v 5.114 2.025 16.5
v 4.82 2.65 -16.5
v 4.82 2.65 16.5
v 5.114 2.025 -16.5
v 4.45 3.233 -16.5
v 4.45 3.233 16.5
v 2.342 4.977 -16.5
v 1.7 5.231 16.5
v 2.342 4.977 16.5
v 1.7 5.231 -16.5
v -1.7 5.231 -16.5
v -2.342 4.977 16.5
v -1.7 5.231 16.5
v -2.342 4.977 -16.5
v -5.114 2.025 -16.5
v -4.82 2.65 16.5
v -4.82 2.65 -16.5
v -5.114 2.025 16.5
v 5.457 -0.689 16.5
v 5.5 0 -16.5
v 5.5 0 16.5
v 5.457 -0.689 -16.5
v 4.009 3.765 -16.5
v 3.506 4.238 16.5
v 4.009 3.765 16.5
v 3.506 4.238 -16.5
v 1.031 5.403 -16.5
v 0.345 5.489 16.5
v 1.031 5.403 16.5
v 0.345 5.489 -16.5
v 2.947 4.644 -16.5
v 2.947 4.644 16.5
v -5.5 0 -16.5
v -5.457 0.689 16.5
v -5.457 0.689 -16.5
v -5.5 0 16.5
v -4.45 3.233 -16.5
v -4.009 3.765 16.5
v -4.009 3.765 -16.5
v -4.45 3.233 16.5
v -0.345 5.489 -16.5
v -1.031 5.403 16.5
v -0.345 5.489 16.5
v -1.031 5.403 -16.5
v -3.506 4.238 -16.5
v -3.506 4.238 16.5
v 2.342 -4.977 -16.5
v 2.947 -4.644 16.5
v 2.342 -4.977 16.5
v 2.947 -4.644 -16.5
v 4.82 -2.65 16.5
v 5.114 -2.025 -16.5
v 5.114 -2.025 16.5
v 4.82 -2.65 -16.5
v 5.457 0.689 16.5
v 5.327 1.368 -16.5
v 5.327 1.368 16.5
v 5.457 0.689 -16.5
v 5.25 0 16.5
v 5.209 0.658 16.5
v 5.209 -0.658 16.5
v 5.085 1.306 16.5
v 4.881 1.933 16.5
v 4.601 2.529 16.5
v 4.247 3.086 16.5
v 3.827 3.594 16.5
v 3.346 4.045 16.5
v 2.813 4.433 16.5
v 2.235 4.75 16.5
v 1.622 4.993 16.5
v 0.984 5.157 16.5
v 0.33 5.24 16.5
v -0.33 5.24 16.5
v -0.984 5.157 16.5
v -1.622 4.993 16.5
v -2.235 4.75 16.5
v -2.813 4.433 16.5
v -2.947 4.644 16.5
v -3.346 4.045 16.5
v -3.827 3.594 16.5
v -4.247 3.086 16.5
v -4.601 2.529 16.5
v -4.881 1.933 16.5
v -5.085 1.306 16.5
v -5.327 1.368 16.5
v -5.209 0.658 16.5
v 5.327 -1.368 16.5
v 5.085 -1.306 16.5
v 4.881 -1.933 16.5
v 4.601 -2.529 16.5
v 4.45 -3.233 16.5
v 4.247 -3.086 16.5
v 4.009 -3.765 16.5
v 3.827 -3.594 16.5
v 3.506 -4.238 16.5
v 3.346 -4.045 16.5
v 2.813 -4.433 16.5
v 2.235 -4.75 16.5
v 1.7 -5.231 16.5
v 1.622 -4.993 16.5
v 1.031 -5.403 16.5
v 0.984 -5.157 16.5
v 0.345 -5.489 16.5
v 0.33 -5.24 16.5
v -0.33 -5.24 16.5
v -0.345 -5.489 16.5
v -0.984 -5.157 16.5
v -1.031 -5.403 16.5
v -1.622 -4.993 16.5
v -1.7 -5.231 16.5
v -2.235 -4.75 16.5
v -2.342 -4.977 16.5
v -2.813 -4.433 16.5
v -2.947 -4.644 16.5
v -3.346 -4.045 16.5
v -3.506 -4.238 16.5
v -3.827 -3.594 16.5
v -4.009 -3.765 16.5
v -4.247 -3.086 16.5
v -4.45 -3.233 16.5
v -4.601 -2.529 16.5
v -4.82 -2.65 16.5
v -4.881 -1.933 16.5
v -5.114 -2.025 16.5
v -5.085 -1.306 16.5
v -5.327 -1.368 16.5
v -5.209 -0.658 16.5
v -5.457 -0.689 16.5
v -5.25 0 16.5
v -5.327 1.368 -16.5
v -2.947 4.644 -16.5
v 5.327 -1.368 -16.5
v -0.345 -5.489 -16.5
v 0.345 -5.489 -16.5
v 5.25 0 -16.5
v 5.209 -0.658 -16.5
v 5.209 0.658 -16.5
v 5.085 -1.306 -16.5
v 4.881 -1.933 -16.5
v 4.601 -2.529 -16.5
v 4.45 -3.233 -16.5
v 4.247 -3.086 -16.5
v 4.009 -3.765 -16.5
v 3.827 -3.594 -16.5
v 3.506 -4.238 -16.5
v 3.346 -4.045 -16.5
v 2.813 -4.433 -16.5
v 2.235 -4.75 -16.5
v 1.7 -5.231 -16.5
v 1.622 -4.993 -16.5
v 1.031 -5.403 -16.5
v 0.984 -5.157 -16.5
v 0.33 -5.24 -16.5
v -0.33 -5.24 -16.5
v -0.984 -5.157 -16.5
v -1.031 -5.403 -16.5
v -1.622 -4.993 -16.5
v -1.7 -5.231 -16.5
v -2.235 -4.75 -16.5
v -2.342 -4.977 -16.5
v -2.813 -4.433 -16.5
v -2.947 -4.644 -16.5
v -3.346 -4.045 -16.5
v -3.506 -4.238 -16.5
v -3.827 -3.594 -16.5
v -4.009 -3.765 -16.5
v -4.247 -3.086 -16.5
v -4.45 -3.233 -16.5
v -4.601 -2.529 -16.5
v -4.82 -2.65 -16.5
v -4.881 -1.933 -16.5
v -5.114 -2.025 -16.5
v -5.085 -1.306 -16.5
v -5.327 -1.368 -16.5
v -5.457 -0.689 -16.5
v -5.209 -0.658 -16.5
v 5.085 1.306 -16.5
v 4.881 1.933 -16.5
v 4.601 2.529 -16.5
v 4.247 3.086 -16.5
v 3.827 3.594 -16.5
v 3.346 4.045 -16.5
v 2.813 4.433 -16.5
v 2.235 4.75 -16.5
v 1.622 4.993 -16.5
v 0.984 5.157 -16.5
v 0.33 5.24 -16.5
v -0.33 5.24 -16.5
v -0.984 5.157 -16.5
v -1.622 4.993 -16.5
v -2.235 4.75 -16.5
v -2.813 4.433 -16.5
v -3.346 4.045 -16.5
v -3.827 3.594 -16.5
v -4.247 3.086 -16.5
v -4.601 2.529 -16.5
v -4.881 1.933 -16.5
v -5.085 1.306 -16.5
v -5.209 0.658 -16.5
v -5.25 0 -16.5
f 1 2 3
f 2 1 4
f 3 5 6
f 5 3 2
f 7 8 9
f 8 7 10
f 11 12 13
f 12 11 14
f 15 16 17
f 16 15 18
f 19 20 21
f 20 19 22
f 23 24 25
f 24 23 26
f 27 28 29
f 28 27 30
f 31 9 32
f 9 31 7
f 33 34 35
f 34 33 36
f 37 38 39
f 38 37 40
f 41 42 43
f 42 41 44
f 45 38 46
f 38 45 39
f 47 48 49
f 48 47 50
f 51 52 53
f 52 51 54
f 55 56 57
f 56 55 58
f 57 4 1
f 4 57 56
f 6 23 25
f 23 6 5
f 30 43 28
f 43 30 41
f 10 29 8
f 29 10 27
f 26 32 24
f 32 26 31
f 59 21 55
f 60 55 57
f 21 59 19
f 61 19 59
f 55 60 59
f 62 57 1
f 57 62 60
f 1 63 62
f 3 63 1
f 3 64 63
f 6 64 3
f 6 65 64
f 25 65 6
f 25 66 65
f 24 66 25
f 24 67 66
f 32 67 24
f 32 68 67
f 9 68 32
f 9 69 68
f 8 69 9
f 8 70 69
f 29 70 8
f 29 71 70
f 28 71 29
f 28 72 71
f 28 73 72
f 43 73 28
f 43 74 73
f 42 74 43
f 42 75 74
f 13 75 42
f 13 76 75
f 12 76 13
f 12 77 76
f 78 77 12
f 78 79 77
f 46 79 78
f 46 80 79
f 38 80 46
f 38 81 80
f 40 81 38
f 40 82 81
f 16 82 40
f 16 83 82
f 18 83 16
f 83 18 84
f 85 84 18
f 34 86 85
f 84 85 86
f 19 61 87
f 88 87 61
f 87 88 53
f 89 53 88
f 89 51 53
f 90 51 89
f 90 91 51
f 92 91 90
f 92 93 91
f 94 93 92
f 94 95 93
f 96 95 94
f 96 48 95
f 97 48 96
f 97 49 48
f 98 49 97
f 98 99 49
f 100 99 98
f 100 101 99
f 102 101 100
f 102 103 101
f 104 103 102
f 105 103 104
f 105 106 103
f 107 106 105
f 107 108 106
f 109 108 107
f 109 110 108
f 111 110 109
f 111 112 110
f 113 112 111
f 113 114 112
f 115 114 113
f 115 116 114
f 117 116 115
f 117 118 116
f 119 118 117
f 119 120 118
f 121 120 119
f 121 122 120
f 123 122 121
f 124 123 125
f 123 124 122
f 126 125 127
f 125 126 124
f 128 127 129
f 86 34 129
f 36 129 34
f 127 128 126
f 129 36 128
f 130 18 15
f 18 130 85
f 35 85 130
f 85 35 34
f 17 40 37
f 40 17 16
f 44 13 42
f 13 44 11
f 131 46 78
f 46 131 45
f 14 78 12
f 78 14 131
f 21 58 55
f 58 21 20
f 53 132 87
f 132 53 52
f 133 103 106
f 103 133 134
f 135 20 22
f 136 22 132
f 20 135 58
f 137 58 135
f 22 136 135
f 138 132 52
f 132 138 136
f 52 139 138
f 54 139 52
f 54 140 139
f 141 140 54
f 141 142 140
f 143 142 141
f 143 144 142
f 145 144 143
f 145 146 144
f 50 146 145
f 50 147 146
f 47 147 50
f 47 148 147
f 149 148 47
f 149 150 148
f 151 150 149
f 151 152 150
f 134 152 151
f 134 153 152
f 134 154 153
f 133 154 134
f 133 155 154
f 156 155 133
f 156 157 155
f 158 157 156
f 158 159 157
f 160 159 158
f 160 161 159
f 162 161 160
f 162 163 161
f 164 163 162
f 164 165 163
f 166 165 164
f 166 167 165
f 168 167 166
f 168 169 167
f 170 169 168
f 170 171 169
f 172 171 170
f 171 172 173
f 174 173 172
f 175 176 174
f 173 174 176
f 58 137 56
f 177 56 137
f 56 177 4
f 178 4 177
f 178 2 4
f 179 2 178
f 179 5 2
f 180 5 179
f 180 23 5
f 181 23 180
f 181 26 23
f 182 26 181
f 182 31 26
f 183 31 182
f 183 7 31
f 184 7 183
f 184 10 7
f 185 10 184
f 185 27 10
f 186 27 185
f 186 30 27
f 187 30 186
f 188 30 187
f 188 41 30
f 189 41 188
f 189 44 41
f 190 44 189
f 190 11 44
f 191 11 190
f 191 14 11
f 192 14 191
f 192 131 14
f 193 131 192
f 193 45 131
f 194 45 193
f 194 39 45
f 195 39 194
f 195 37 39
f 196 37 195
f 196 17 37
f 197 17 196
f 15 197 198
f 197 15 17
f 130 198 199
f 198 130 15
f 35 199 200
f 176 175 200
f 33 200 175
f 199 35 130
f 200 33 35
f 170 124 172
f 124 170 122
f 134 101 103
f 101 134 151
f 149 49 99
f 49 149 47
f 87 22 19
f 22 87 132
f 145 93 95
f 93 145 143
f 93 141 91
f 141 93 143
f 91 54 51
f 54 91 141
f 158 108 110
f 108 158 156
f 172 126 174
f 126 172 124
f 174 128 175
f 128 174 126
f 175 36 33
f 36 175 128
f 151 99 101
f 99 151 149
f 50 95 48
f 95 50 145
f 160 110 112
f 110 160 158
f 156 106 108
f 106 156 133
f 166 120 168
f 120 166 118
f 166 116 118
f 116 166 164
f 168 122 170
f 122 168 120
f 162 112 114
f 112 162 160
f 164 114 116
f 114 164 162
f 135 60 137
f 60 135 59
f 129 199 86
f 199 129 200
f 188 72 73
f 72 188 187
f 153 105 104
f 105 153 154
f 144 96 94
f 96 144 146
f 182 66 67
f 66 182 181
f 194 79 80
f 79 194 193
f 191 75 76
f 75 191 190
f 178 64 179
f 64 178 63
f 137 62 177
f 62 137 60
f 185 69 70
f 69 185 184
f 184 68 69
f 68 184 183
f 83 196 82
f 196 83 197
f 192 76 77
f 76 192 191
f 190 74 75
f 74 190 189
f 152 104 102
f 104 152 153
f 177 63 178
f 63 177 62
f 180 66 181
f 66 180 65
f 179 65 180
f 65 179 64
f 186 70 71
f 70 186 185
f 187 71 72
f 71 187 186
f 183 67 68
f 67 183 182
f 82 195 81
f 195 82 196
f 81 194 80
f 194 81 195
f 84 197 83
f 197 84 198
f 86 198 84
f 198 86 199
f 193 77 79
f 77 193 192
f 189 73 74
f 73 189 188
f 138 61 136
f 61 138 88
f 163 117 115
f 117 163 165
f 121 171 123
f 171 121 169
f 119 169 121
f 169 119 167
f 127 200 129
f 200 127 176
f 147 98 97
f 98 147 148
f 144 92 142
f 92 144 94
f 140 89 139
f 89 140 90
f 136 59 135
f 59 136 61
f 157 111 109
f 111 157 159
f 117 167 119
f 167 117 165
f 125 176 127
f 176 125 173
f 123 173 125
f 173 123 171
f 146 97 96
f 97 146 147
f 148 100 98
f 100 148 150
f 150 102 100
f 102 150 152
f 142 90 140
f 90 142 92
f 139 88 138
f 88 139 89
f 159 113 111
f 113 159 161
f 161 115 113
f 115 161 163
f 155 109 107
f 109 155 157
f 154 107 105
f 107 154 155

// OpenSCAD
$fn = 50;


difference() {
	union() {
		translate(v = [0, 0, -16.5000000000]) {
			cylinder(h = 33, r = 5.5000000000);
		}
	}
	union() {
		translate(v = [0, 0, -100.0000000000]) {
			cylinder(h = 200, r = 5.2500000000);
		}
	}
}
